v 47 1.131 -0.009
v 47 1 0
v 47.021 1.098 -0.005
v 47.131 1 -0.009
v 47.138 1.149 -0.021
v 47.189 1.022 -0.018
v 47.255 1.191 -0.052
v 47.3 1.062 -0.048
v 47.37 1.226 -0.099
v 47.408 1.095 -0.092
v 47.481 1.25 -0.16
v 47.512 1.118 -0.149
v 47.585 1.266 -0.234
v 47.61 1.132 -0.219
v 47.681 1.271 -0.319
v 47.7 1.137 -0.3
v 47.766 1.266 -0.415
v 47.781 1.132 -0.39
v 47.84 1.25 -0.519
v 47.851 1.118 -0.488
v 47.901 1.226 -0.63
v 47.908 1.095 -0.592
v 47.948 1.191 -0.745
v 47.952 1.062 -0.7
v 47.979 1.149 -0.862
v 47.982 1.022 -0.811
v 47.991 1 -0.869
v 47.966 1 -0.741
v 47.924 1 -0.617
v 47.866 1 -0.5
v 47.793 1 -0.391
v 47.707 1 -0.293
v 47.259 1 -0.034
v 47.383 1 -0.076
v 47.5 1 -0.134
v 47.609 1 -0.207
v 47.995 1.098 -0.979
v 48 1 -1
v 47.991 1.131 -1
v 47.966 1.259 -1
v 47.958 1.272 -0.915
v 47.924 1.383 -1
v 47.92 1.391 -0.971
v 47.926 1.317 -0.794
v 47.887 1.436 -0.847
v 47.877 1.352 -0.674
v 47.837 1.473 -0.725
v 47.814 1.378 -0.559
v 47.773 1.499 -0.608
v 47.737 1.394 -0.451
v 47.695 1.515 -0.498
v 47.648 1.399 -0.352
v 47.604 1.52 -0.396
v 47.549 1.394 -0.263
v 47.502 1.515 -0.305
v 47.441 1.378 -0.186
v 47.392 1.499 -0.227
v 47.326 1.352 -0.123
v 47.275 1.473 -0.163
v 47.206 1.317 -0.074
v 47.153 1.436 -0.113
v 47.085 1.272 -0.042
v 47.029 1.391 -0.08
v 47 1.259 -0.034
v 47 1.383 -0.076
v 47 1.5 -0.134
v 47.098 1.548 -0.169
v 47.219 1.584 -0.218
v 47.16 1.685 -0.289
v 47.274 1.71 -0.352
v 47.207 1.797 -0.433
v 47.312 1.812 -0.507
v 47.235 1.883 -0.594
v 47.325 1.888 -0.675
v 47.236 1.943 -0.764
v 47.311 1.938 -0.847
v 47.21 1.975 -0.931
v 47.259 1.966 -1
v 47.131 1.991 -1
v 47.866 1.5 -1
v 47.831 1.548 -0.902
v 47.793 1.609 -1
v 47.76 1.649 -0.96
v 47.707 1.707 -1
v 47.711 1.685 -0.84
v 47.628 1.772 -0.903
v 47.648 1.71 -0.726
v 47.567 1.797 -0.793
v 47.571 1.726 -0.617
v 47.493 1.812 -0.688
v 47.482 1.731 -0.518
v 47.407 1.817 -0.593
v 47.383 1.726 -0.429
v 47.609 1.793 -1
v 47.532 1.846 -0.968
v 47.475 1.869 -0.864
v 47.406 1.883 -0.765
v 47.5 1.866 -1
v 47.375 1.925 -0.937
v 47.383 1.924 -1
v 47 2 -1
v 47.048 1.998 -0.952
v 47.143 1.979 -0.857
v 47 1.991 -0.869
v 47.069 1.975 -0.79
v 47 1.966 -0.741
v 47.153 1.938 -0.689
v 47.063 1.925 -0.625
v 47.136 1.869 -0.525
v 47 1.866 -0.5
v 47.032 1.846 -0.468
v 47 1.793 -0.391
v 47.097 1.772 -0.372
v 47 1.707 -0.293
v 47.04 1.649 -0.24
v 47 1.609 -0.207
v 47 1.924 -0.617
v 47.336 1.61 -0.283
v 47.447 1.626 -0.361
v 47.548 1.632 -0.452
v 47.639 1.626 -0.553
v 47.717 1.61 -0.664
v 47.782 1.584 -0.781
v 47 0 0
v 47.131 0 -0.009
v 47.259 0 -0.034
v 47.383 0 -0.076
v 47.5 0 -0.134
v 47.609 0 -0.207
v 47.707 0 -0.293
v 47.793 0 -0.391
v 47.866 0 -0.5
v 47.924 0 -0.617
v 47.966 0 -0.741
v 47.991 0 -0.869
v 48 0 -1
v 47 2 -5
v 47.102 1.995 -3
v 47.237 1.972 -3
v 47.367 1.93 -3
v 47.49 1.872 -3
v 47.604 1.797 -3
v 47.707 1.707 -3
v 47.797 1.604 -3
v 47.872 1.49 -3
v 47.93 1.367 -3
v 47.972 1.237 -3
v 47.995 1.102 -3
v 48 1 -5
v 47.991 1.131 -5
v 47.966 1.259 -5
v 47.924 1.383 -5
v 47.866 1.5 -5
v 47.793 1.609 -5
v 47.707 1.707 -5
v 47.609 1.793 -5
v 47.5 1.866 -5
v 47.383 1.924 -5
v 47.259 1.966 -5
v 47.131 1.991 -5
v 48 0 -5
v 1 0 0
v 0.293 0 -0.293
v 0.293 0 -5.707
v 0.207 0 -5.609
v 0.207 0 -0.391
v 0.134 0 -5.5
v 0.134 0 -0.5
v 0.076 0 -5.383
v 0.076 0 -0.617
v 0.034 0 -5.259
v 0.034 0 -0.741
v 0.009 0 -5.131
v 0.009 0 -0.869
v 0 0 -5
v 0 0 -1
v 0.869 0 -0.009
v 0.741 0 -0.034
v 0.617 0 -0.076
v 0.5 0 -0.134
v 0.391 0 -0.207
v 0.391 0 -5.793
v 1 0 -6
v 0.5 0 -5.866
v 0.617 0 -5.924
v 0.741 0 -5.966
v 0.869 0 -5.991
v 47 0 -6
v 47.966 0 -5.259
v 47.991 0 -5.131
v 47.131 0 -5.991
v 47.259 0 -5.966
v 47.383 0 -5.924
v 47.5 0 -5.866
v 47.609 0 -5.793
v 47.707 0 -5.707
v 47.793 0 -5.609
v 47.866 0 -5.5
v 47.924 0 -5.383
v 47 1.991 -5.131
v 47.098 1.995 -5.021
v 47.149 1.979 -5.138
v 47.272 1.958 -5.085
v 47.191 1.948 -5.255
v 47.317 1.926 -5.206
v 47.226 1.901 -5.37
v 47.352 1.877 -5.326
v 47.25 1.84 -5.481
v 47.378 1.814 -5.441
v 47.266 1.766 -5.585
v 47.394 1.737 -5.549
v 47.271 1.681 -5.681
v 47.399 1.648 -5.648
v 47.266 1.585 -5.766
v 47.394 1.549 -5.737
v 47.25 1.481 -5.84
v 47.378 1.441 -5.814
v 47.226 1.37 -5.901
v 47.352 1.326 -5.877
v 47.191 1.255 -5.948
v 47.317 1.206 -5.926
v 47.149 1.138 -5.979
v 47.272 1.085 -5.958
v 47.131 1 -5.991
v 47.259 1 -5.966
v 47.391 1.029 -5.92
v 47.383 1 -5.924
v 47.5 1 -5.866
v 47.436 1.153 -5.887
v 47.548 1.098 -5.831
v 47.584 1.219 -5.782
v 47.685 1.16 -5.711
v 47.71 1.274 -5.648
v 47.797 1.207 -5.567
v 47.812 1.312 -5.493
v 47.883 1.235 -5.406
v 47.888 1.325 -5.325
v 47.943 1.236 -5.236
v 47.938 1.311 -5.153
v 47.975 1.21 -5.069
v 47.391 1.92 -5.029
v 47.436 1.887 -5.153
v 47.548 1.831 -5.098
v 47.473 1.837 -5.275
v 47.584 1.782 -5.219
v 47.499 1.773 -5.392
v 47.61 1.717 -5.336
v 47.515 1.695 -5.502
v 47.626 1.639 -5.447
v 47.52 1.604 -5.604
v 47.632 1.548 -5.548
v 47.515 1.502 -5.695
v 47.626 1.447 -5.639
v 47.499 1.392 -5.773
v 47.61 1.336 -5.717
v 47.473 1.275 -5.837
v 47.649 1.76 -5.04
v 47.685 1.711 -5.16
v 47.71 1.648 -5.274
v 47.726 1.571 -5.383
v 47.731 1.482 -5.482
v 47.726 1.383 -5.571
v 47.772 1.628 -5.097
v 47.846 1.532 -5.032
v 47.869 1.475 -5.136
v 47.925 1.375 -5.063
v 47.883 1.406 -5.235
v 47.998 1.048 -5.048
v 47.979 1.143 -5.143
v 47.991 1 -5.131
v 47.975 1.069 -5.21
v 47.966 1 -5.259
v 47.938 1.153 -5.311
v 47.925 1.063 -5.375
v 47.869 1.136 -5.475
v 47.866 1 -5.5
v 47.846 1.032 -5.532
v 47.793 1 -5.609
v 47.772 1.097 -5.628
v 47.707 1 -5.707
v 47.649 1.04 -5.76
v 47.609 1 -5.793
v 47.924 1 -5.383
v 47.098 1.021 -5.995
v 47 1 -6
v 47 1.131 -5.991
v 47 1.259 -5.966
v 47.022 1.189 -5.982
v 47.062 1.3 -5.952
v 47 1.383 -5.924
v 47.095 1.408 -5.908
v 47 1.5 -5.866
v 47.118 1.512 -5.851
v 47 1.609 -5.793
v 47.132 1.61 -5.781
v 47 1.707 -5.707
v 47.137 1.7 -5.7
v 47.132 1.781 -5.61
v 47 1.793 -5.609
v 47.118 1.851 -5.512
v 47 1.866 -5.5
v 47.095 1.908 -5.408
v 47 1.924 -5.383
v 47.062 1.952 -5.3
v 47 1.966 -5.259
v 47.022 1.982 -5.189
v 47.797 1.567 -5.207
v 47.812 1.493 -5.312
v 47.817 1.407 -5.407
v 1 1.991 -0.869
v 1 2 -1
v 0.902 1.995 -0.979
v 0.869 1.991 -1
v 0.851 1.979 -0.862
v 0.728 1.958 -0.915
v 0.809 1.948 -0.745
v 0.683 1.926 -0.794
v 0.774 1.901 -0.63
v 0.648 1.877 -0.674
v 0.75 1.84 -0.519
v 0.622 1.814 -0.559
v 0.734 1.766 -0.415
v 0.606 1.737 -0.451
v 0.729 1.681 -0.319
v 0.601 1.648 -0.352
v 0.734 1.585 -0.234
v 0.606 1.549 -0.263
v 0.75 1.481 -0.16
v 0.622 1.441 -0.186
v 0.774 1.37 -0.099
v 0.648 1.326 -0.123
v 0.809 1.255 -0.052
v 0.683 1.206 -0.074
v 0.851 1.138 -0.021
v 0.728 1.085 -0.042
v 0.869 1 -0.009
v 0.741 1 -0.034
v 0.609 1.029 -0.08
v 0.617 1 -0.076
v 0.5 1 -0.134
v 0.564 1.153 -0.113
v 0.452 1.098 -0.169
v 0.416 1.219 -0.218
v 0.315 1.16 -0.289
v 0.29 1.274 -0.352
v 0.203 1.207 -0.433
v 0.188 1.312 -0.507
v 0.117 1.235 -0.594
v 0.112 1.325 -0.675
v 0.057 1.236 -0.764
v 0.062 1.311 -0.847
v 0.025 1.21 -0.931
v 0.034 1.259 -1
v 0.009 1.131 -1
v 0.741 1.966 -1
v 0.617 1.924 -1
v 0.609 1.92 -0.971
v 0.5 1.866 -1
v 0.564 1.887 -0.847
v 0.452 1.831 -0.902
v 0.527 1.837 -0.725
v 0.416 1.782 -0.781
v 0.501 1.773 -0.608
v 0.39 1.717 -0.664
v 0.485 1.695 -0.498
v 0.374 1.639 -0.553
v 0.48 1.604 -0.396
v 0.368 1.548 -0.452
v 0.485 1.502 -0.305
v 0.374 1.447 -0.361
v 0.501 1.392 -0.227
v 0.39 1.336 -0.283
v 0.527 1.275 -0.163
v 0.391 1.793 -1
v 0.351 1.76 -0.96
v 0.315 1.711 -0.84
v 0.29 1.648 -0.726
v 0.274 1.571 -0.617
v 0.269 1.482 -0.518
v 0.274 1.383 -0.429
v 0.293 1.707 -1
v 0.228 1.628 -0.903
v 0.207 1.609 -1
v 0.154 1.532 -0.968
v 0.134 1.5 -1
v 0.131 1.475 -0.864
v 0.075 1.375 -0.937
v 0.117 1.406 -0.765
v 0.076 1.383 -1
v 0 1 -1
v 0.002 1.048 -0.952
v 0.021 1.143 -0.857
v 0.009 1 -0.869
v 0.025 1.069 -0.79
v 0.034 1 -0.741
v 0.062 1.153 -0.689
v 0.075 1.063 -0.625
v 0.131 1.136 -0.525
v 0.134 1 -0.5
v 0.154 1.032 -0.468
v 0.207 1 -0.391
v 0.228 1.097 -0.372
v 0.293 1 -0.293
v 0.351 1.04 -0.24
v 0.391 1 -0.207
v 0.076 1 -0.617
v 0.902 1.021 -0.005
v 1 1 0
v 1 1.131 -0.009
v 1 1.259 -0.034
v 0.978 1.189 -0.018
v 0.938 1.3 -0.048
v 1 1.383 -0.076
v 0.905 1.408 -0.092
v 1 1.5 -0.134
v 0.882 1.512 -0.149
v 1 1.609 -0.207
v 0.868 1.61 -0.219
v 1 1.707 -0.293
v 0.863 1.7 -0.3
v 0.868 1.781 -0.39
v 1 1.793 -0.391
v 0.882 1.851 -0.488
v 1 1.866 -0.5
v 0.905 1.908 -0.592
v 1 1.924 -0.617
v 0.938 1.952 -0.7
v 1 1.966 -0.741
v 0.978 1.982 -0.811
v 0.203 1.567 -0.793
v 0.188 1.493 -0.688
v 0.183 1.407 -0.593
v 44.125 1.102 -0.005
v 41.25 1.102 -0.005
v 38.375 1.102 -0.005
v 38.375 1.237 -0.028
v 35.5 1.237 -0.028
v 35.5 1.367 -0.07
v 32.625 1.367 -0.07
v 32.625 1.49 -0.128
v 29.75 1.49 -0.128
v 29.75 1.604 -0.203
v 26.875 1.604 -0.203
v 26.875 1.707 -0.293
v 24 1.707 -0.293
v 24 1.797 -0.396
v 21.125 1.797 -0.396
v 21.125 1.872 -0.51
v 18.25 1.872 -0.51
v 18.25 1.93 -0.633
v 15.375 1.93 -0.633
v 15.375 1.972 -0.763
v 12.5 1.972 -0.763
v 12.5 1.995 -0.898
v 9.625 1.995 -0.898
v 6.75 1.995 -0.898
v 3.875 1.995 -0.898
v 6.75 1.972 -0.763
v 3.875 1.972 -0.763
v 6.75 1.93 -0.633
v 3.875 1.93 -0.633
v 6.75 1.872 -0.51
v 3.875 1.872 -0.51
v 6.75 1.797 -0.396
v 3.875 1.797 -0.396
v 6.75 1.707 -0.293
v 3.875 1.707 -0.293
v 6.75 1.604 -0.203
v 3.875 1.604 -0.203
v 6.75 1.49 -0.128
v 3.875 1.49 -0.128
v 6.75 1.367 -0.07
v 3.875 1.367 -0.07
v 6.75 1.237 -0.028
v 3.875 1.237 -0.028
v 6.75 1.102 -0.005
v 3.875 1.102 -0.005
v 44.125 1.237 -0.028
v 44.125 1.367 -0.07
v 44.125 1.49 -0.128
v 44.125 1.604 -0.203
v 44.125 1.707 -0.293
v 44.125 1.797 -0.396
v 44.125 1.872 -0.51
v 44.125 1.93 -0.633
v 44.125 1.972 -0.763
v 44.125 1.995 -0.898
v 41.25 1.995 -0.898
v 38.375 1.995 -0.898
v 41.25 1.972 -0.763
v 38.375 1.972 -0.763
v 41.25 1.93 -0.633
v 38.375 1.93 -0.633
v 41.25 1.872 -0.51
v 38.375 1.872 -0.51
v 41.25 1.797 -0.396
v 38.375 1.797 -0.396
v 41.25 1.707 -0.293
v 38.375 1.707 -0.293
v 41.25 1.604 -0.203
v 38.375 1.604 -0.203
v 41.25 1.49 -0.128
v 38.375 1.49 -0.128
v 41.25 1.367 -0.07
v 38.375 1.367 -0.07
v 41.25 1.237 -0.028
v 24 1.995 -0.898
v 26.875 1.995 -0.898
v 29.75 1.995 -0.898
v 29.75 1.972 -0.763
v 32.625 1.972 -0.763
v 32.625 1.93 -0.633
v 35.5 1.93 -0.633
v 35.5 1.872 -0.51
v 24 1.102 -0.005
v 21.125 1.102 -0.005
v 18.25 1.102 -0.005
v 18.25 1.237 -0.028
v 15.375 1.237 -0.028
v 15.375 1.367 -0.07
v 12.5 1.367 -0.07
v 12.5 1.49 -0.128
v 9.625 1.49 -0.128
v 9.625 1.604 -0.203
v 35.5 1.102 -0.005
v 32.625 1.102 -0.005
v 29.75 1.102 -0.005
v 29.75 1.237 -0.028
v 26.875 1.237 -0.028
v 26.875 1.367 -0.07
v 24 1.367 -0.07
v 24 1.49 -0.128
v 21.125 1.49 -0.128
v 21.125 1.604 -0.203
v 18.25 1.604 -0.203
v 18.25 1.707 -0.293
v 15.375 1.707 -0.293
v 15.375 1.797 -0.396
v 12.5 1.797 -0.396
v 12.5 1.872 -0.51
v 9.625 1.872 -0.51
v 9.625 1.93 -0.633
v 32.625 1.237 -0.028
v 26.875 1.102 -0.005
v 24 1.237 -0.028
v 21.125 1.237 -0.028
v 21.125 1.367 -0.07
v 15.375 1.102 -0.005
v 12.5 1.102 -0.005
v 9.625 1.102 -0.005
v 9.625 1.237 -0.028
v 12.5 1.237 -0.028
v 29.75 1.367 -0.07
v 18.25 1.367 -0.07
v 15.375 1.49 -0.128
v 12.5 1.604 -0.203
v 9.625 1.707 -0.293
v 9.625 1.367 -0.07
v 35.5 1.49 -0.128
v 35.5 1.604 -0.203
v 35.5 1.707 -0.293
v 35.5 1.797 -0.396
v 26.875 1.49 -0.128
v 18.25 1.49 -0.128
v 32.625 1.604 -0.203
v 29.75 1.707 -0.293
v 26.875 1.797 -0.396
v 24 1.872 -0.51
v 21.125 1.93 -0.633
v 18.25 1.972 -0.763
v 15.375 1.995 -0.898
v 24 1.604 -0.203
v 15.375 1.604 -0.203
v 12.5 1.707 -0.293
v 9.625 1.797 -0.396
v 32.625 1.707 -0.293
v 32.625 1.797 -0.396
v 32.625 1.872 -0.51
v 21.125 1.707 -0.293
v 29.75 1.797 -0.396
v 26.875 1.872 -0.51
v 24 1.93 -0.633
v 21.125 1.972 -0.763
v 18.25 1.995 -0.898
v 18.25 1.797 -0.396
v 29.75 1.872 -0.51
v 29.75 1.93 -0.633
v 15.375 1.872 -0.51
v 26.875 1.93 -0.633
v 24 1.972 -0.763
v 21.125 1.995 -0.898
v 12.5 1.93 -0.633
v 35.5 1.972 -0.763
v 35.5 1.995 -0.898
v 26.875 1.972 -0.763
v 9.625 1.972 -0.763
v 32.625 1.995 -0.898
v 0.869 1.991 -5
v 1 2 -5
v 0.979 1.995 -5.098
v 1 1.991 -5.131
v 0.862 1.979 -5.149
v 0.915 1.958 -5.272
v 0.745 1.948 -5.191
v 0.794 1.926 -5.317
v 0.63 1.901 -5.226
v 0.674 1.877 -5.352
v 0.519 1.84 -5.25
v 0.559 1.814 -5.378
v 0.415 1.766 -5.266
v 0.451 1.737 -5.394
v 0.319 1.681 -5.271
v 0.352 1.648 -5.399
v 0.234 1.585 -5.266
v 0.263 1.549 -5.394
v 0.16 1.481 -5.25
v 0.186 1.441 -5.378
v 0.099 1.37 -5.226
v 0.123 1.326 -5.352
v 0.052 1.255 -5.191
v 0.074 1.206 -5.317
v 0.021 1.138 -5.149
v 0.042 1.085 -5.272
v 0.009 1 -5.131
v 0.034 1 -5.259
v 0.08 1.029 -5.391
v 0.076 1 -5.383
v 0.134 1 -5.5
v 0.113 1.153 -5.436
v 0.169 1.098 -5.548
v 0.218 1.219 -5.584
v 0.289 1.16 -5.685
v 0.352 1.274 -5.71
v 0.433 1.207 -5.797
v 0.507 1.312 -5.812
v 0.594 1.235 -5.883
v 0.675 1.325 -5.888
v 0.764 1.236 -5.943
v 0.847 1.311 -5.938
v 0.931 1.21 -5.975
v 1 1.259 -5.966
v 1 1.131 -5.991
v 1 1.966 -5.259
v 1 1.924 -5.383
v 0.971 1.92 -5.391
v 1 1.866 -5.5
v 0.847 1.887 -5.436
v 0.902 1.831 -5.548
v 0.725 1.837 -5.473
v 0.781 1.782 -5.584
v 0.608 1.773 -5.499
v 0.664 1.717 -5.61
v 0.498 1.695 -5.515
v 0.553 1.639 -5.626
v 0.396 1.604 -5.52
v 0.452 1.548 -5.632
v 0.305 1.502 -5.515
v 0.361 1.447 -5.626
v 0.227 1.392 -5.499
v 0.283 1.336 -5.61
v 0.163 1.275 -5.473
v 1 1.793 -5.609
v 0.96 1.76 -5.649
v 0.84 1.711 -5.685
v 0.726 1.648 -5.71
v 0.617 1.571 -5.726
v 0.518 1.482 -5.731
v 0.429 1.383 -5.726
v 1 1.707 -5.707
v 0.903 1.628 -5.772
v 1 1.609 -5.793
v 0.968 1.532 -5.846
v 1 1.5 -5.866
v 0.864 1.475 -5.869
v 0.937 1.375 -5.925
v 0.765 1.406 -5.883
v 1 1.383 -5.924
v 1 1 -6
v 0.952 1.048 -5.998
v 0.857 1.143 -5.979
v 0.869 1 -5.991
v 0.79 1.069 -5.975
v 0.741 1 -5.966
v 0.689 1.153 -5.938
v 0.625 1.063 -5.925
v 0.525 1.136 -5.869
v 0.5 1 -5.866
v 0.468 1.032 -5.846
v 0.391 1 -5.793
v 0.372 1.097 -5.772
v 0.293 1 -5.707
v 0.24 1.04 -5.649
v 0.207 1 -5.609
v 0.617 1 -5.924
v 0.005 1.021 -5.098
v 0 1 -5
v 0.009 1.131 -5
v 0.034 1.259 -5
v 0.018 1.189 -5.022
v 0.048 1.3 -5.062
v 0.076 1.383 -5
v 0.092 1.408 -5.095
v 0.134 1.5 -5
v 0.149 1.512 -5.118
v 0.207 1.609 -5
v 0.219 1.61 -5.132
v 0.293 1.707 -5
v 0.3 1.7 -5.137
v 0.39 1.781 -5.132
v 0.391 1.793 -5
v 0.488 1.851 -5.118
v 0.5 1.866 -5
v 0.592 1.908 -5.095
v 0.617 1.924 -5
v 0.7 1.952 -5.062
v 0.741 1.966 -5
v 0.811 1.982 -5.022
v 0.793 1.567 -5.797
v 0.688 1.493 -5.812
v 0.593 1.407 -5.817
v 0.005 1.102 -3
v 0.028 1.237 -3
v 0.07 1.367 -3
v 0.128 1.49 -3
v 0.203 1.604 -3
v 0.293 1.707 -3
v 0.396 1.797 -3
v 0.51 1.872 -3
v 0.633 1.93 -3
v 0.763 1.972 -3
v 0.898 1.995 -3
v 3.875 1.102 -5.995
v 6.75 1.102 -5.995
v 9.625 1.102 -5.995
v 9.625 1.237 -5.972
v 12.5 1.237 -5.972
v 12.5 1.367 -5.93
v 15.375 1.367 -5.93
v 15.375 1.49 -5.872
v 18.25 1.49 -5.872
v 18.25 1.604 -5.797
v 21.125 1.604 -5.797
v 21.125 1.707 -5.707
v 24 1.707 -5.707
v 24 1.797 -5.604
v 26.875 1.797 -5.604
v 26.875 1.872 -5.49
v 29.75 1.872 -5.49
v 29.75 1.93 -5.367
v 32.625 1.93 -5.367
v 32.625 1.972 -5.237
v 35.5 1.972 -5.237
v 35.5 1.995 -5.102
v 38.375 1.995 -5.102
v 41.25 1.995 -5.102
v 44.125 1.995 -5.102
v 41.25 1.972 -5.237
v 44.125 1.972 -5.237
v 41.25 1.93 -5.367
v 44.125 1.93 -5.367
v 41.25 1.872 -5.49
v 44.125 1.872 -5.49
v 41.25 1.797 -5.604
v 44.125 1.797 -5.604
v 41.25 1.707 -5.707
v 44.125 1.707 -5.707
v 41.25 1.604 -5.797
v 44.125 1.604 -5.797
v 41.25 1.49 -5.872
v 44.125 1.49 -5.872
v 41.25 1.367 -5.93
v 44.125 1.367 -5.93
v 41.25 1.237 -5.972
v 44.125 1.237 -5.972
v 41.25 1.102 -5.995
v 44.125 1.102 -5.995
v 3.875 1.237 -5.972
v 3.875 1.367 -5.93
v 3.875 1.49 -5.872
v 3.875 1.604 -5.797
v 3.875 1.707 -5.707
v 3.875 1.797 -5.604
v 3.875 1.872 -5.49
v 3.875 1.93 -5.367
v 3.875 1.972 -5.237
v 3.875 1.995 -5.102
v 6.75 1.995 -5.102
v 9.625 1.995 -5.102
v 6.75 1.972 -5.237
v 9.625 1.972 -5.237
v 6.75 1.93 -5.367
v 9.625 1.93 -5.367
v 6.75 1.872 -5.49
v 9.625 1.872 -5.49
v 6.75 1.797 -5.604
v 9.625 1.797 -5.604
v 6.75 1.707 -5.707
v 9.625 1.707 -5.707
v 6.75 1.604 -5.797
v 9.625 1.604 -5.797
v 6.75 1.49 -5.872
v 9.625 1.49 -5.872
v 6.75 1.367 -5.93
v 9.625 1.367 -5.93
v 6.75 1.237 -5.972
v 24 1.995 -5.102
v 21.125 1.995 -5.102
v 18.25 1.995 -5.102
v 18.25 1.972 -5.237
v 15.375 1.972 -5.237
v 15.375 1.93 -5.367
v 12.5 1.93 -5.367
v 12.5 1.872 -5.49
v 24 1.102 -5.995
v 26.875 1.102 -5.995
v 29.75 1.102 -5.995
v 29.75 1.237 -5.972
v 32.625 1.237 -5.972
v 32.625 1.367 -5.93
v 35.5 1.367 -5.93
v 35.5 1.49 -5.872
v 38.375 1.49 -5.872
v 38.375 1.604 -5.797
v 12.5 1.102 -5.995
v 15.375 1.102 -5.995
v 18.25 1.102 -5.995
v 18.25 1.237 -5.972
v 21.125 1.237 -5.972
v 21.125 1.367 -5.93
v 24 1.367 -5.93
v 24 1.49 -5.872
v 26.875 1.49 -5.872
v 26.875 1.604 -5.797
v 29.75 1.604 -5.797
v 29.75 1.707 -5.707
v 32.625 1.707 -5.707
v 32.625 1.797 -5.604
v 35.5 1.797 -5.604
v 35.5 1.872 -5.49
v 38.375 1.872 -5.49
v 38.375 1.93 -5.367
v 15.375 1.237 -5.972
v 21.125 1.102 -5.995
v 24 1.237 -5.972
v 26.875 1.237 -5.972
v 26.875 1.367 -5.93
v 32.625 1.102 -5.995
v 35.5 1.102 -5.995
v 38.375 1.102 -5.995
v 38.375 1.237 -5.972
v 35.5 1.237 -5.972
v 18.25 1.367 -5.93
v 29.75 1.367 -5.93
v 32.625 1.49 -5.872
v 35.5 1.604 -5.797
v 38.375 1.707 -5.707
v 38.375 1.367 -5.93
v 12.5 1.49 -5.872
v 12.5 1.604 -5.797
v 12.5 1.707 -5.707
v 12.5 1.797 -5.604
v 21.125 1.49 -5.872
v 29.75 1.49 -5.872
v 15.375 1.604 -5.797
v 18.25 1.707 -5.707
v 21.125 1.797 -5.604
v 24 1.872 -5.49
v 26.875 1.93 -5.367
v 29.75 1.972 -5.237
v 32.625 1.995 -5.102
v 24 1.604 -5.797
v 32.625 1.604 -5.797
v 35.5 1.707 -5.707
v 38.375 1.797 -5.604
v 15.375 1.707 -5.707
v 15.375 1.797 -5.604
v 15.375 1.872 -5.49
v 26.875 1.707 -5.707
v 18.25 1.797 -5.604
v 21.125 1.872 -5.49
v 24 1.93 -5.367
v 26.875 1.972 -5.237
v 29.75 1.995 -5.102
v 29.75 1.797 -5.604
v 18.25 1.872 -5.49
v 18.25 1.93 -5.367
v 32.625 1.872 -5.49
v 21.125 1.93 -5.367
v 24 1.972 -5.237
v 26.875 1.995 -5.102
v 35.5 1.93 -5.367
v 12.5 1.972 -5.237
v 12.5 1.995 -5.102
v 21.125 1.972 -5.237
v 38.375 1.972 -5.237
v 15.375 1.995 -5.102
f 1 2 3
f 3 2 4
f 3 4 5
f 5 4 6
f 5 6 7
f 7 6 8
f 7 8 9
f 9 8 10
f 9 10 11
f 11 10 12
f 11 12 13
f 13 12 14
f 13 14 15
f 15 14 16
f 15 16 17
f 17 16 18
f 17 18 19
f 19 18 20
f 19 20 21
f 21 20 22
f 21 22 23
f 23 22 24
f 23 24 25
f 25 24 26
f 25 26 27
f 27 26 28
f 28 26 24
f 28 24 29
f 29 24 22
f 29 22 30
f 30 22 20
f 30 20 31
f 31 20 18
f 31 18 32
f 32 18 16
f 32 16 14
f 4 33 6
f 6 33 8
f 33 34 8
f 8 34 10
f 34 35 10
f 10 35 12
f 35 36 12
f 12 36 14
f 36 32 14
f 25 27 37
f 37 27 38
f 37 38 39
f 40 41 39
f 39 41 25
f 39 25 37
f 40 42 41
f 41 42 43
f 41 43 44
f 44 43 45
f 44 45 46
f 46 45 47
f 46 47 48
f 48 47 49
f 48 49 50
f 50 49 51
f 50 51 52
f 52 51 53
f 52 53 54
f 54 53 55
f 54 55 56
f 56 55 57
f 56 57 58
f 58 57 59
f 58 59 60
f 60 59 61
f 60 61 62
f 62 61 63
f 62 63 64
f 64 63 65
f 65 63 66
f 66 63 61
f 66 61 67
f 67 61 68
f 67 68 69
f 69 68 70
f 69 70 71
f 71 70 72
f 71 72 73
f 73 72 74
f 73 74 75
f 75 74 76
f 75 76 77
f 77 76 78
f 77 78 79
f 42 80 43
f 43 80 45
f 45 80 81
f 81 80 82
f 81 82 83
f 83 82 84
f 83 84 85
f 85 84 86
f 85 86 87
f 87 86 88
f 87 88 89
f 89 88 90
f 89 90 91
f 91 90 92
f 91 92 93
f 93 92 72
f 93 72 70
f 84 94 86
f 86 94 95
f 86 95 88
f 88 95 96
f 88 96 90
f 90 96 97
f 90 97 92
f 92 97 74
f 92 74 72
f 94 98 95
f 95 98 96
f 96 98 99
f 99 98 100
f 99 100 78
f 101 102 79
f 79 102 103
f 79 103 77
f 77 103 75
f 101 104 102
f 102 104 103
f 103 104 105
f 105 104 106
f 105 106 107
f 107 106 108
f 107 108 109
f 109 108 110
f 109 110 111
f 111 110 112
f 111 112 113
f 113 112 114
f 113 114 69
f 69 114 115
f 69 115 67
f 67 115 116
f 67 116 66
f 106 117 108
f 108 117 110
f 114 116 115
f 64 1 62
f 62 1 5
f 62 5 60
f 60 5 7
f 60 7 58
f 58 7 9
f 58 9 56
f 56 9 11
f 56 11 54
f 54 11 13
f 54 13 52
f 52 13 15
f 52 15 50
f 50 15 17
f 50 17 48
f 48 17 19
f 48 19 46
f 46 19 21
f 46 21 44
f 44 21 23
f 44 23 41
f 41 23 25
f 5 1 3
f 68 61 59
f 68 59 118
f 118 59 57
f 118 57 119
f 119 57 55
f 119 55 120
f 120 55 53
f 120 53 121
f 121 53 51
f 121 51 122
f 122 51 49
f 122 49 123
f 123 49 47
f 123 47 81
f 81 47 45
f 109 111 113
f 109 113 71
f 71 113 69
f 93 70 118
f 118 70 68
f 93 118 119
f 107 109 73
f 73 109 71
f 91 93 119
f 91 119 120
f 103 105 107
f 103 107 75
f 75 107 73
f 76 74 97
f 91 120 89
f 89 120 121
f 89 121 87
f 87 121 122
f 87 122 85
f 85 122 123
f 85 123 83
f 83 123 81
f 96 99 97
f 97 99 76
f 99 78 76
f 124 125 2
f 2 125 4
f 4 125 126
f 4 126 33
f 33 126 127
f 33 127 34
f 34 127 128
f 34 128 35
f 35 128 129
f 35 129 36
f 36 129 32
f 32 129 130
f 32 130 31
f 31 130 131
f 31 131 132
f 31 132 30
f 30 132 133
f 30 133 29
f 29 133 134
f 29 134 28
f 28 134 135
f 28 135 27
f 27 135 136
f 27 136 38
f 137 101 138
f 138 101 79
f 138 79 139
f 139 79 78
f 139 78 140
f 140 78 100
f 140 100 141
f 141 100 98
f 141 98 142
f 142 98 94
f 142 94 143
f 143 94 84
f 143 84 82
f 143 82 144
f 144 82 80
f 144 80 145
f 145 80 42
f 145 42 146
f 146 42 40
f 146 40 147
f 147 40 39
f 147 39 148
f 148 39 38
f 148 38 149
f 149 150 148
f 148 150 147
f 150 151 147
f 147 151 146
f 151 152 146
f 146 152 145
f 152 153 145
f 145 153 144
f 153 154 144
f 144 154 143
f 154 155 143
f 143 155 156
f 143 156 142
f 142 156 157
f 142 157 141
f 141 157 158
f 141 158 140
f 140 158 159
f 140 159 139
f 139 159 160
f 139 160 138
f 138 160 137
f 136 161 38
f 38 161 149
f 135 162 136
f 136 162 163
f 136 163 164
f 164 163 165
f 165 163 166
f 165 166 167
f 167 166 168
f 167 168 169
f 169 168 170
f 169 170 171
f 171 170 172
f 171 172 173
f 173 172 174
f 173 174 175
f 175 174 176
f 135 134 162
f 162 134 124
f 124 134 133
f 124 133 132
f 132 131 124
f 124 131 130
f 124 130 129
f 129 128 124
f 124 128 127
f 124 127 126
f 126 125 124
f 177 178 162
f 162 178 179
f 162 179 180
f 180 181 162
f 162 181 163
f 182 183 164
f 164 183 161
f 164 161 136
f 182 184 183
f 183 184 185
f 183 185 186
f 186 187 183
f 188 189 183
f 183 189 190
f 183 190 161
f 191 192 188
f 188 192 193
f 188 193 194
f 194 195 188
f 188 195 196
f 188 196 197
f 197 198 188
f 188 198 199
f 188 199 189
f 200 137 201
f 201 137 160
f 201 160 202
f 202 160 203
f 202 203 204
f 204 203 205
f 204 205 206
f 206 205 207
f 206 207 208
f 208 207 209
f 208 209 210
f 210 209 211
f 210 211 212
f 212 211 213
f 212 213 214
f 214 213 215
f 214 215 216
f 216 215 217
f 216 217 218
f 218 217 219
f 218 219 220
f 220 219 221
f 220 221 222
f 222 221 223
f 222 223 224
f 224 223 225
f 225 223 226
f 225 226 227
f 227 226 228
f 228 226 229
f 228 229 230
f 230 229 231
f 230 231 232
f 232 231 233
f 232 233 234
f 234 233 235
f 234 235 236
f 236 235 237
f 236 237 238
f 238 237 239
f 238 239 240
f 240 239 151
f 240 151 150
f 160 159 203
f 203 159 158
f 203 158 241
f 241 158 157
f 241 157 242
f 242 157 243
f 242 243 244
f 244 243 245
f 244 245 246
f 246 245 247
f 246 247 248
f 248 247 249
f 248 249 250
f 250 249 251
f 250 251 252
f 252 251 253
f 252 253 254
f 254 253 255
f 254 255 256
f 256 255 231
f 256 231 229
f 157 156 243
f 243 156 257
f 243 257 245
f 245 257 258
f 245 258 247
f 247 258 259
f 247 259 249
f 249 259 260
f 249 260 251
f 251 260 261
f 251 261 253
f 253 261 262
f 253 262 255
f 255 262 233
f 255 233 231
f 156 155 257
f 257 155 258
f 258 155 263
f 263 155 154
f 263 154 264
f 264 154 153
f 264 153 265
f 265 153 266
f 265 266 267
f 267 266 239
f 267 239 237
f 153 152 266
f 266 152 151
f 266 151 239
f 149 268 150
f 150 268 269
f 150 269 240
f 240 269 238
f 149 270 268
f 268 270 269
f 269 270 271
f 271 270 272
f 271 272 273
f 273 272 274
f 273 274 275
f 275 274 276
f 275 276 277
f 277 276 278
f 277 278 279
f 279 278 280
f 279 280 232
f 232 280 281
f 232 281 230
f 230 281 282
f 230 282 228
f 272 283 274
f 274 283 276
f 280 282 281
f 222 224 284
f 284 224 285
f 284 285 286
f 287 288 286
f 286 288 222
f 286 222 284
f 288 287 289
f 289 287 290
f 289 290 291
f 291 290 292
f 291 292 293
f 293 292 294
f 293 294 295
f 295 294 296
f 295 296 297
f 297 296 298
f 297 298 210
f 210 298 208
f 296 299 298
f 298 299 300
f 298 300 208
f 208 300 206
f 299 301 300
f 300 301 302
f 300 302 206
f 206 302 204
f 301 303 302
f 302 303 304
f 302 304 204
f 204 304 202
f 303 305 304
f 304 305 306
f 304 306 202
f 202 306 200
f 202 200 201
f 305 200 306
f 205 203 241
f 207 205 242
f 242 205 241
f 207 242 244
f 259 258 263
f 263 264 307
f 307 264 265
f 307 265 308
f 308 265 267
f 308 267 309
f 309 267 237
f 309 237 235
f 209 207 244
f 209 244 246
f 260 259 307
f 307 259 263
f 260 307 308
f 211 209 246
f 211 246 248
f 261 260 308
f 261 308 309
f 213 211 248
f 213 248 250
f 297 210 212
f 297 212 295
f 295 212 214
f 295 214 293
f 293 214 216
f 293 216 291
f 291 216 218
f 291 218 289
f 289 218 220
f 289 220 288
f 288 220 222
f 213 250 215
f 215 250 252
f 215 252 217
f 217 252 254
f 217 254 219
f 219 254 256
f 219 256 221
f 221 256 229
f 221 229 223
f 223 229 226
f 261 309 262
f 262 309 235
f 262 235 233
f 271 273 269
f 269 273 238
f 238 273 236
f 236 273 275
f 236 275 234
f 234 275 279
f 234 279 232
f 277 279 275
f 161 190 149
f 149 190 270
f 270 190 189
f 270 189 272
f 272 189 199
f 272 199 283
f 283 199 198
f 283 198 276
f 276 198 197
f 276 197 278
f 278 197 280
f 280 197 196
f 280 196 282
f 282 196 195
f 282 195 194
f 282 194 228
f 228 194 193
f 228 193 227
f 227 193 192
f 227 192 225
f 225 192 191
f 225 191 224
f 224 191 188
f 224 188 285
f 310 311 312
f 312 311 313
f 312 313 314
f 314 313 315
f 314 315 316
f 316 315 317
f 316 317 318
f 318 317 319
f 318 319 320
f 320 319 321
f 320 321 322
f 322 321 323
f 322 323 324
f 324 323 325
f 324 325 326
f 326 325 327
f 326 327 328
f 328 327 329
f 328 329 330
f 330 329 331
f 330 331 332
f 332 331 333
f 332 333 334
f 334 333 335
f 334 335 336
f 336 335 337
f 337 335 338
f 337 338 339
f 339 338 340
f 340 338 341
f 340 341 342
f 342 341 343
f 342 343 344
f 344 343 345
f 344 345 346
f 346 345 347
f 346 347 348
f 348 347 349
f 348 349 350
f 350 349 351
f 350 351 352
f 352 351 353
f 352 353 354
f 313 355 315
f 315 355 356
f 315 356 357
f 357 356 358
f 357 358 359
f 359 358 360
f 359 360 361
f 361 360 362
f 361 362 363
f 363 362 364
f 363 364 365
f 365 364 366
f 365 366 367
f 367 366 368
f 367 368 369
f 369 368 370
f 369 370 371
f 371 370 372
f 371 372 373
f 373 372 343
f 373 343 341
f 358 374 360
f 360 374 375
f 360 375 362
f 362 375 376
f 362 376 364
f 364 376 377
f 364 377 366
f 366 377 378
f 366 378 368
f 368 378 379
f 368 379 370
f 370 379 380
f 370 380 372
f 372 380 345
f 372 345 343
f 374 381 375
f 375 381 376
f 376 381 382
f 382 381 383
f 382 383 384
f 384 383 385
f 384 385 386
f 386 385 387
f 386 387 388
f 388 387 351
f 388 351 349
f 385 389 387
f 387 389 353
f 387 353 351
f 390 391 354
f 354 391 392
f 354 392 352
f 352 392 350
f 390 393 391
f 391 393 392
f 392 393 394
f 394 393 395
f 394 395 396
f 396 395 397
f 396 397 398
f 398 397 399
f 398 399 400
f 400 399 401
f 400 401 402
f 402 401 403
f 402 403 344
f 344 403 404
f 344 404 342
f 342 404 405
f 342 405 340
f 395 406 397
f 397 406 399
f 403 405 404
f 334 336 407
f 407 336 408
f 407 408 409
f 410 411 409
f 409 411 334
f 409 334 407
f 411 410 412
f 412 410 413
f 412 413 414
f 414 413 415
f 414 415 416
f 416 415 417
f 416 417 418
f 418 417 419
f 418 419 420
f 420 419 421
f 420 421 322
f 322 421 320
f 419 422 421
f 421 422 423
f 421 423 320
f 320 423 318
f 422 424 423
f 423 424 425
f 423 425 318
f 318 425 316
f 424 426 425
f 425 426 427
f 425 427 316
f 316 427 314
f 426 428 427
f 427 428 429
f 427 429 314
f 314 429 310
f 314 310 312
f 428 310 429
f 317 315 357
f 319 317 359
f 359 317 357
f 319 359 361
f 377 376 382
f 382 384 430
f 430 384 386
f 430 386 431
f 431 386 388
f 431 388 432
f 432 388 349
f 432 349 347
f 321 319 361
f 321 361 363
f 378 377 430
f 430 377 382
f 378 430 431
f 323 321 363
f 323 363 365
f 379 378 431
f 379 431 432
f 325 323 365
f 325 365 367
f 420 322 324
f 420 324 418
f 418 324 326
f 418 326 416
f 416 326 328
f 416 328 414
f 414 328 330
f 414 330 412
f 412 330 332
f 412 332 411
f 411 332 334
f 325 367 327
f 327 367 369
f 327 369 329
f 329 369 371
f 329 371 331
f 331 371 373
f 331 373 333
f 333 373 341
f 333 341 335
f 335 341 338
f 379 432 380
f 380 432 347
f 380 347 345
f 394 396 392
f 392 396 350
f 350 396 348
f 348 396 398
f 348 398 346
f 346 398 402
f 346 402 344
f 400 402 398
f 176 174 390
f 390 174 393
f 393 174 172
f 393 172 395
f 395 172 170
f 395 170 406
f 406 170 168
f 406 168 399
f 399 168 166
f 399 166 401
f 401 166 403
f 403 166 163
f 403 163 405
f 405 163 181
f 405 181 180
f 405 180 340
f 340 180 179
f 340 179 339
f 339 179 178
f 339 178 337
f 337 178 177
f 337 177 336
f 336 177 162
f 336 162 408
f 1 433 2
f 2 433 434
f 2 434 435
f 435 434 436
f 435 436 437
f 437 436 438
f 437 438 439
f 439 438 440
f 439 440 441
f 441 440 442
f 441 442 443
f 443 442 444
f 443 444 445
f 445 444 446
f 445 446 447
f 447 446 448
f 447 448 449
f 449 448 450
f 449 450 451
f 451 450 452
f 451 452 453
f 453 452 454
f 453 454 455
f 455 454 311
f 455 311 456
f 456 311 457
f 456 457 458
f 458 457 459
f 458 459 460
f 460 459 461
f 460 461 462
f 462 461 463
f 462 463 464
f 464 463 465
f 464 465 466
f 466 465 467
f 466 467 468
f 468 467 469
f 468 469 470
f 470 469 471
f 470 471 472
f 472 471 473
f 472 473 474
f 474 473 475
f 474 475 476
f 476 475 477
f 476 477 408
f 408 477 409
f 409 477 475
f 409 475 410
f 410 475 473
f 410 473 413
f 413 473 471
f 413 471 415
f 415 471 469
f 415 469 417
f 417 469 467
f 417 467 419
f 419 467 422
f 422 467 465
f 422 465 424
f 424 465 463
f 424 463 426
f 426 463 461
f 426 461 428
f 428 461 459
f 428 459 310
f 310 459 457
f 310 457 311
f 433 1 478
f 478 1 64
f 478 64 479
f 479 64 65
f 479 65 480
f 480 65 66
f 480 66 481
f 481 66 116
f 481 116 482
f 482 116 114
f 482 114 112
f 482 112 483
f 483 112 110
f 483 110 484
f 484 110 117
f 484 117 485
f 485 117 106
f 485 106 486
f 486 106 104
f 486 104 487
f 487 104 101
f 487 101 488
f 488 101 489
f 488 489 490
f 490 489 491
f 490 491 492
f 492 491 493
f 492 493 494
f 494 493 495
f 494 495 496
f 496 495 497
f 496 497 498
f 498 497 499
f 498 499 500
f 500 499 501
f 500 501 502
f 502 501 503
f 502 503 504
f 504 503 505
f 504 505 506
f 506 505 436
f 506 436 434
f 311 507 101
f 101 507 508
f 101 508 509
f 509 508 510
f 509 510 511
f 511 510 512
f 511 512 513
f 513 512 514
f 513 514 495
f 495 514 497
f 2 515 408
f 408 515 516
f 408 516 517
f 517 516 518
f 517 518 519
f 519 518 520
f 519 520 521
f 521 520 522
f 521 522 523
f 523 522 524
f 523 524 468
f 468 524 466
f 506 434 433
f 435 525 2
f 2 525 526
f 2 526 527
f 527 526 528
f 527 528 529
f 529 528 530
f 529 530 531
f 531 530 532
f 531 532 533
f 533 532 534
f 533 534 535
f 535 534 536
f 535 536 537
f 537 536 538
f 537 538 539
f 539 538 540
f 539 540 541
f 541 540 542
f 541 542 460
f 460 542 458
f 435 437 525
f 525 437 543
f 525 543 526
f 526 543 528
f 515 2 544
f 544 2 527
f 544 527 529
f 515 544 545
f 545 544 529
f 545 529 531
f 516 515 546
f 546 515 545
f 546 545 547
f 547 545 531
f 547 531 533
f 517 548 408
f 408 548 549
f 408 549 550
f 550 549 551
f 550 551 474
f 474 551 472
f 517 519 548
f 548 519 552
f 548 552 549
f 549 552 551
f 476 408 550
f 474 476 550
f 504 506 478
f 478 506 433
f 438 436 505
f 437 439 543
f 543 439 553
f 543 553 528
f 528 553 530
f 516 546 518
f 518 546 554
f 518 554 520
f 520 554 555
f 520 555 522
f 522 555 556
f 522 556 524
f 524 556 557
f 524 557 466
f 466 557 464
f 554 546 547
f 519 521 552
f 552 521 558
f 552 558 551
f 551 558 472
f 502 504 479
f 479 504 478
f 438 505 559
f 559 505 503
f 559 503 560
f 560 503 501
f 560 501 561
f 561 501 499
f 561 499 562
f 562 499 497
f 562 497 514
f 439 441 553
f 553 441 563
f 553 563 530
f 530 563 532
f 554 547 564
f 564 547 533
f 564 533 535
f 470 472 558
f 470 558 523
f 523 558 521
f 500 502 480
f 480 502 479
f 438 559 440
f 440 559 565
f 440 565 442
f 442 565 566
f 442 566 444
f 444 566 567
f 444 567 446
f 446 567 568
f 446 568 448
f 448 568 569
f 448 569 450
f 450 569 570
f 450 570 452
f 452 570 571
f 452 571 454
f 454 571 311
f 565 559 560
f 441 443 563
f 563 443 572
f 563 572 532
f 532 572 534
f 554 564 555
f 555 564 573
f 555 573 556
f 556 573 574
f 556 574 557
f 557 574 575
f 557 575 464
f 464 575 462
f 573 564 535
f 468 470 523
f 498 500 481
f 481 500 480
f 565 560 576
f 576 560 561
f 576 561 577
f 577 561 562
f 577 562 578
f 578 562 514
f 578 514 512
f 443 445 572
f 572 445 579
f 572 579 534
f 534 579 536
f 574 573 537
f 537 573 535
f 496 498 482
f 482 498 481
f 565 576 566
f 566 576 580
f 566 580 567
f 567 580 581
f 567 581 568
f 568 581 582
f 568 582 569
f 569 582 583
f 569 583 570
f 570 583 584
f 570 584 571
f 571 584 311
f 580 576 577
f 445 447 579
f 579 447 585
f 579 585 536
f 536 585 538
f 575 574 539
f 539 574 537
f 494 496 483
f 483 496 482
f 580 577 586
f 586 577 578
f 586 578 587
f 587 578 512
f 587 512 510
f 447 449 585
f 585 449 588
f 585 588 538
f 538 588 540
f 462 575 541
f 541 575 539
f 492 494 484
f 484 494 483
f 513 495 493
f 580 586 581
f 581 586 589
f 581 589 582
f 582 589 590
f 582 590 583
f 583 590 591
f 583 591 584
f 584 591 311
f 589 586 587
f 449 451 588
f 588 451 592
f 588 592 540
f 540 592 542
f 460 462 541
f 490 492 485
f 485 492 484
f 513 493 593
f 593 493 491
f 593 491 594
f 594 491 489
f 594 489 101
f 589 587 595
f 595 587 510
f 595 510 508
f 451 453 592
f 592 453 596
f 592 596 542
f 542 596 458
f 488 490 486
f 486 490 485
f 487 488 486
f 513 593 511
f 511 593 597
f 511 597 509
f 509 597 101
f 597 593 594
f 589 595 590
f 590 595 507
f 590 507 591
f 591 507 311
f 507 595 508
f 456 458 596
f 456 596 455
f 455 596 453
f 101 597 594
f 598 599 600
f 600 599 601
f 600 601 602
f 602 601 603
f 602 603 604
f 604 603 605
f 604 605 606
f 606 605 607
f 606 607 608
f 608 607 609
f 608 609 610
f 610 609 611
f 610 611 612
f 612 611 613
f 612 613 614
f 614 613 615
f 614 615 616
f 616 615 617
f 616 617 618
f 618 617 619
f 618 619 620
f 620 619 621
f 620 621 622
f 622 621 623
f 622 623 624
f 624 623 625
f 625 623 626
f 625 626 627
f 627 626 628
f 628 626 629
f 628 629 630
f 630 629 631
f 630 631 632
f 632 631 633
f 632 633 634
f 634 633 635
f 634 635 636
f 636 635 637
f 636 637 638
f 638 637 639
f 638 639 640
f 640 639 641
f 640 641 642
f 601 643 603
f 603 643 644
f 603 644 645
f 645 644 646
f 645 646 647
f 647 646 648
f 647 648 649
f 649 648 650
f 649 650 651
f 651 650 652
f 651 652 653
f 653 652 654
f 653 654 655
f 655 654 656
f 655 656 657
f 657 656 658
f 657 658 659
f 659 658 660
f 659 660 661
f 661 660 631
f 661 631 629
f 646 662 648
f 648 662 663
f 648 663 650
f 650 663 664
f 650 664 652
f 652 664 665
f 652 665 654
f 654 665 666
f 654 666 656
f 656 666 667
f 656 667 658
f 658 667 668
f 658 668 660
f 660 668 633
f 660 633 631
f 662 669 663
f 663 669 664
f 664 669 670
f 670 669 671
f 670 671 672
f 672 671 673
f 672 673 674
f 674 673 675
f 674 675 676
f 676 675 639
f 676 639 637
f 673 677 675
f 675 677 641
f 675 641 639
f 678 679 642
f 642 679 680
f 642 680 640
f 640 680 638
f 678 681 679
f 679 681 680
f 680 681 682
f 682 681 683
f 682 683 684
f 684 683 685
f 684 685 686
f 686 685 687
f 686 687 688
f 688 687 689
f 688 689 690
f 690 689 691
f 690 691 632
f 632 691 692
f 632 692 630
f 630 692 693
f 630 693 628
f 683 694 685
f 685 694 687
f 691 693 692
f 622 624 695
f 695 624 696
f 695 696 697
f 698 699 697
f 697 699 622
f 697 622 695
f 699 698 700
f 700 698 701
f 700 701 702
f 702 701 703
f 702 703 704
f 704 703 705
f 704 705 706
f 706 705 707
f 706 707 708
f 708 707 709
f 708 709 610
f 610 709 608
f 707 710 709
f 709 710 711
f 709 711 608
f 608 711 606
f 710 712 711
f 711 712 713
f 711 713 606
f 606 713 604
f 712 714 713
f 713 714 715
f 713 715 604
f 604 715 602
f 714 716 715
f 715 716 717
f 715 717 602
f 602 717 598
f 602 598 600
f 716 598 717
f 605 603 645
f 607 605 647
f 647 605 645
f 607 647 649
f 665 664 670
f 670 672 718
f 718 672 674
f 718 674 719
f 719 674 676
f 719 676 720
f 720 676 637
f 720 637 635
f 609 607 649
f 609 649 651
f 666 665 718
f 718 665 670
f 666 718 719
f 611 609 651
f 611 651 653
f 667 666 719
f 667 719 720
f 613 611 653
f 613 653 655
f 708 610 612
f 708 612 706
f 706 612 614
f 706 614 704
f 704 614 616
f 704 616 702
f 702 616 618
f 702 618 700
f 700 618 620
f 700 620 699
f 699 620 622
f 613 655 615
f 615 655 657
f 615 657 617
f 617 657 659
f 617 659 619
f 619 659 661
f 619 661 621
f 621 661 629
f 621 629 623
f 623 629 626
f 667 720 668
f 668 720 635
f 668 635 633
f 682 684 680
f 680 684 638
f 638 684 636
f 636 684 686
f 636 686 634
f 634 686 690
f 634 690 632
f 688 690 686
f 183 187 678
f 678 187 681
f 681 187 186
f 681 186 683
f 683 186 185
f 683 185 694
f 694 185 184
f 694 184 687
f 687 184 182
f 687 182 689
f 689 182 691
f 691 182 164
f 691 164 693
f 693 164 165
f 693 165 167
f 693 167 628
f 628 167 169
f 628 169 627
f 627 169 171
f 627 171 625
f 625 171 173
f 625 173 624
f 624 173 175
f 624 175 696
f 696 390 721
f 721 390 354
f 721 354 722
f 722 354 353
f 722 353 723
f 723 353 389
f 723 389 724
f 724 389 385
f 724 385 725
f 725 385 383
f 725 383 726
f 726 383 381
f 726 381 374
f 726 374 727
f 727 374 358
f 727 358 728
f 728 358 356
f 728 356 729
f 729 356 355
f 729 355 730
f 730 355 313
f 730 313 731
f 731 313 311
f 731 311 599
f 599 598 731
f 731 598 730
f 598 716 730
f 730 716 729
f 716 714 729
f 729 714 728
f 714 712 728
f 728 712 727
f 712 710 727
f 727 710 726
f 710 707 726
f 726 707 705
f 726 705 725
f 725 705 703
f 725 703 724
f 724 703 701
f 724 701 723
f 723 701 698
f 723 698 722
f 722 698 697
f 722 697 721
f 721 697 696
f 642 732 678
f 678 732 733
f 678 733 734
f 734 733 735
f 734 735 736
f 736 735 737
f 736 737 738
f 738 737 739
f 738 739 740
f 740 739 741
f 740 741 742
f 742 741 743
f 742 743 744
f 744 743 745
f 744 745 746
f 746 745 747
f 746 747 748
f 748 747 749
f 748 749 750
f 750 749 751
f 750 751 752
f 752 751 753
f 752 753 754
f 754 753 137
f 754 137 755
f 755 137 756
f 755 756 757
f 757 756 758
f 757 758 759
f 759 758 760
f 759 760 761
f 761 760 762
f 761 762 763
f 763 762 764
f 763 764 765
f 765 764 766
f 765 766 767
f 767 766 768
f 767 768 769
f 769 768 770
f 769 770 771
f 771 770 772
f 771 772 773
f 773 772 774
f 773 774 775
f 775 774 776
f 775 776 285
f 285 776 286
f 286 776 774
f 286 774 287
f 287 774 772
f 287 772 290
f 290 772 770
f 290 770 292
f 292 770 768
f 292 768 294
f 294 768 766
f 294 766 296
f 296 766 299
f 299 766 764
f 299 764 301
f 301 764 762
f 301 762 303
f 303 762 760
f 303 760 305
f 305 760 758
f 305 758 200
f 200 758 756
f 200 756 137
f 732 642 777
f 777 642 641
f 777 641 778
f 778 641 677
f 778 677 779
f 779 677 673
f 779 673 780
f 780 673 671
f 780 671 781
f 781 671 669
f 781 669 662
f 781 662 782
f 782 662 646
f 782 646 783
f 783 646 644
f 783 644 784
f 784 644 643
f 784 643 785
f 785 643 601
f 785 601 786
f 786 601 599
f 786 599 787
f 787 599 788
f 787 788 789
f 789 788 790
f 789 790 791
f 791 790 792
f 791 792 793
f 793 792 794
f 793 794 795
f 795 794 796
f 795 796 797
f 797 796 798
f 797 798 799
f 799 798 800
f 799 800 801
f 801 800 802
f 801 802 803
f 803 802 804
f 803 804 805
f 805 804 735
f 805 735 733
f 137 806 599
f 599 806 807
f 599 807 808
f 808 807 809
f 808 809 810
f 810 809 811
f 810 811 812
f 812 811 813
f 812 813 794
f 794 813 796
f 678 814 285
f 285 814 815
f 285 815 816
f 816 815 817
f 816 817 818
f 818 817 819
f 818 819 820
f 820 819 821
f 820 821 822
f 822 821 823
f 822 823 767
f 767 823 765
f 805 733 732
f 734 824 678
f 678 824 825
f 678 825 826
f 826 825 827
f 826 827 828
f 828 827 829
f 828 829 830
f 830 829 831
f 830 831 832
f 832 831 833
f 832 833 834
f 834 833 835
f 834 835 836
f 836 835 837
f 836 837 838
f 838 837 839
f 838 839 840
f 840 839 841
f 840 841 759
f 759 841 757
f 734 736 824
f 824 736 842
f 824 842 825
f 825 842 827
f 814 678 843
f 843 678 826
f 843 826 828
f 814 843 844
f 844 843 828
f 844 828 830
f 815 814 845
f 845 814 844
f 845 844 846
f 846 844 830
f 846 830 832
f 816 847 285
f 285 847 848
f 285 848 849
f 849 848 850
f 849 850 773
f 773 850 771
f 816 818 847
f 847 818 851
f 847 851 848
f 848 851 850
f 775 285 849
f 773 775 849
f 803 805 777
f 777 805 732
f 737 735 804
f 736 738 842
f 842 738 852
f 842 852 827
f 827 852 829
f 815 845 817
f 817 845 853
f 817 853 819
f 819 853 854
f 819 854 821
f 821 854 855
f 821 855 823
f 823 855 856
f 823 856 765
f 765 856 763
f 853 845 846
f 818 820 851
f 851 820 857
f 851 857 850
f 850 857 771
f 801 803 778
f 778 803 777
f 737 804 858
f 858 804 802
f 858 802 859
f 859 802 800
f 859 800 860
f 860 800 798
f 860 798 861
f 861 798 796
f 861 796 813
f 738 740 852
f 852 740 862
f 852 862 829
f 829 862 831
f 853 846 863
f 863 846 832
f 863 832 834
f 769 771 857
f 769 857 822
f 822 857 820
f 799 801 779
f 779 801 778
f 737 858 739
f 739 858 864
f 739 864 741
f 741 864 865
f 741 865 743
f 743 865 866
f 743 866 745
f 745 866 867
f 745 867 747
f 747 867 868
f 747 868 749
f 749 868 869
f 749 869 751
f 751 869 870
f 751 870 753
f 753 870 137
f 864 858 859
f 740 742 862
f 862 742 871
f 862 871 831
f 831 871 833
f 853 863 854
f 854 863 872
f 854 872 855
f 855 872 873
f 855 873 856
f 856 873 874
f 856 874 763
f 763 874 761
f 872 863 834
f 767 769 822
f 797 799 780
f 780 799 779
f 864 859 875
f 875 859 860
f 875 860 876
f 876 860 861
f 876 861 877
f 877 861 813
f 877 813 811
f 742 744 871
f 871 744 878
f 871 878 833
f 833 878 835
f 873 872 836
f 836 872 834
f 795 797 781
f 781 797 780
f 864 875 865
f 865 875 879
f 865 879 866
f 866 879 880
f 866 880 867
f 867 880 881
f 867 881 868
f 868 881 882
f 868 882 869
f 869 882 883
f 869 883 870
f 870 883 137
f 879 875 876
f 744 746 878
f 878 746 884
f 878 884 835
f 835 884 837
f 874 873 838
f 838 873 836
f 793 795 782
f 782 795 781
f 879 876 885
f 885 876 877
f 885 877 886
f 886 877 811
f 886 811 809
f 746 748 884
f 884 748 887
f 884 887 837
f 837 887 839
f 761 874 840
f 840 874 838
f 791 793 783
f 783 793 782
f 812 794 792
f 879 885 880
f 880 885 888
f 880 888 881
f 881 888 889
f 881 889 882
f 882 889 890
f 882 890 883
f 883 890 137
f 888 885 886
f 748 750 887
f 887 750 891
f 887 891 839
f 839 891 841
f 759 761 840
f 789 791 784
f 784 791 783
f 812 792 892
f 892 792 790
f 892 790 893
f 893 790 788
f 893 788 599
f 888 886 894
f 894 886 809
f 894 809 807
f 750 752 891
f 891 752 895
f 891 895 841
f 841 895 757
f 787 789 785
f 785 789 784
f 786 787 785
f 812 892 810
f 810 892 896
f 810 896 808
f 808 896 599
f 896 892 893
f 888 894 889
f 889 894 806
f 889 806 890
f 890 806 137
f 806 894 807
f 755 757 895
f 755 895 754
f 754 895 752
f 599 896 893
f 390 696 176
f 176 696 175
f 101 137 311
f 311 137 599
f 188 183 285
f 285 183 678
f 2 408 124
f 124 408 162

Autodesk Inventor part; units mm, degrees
ref_plane "YZ Plane" through (0, 0, 0) normal (1, 0, 0) x (0, 1, 0)
ref_plane "XZ Plane" through (0, 0, 0) normal (0, 1, 0) x (-1, 0, 0)
ref_plane "XY Plane" through (0, 0, 0) normal (0, 0, 1) x (1, 0, 0)
sketch "스케치1" plane through (0, 0, 0) normal (0, 1, 0) x (-1, 0, 0)
  line L0 (0, 0) -> (-48, 0)
  line L1 (-48, 0) -> (-48, -6)
  line L2 (-48, -6) -> (0, -6)
  line L3 (0, -6) -> (0, 0)
  dimension "d0" = 48
  dimension "d1" = 6
extrude "돌출1" add sketch "스케치1" along normal blind 2
fillet "모깎기1" radius 1 7 edges at (0, 1, -6) (0, 1, 0) (0, 2, -3) (24, 2, -6) (48, 2, -3) (24, 2, 0) (48, 1, -6)
fillet "모깎기2" radius 1 2 edges at (47.7071, 1.7071, -0.2929) (48, 0.5, 0)
properties part number "gojung"
